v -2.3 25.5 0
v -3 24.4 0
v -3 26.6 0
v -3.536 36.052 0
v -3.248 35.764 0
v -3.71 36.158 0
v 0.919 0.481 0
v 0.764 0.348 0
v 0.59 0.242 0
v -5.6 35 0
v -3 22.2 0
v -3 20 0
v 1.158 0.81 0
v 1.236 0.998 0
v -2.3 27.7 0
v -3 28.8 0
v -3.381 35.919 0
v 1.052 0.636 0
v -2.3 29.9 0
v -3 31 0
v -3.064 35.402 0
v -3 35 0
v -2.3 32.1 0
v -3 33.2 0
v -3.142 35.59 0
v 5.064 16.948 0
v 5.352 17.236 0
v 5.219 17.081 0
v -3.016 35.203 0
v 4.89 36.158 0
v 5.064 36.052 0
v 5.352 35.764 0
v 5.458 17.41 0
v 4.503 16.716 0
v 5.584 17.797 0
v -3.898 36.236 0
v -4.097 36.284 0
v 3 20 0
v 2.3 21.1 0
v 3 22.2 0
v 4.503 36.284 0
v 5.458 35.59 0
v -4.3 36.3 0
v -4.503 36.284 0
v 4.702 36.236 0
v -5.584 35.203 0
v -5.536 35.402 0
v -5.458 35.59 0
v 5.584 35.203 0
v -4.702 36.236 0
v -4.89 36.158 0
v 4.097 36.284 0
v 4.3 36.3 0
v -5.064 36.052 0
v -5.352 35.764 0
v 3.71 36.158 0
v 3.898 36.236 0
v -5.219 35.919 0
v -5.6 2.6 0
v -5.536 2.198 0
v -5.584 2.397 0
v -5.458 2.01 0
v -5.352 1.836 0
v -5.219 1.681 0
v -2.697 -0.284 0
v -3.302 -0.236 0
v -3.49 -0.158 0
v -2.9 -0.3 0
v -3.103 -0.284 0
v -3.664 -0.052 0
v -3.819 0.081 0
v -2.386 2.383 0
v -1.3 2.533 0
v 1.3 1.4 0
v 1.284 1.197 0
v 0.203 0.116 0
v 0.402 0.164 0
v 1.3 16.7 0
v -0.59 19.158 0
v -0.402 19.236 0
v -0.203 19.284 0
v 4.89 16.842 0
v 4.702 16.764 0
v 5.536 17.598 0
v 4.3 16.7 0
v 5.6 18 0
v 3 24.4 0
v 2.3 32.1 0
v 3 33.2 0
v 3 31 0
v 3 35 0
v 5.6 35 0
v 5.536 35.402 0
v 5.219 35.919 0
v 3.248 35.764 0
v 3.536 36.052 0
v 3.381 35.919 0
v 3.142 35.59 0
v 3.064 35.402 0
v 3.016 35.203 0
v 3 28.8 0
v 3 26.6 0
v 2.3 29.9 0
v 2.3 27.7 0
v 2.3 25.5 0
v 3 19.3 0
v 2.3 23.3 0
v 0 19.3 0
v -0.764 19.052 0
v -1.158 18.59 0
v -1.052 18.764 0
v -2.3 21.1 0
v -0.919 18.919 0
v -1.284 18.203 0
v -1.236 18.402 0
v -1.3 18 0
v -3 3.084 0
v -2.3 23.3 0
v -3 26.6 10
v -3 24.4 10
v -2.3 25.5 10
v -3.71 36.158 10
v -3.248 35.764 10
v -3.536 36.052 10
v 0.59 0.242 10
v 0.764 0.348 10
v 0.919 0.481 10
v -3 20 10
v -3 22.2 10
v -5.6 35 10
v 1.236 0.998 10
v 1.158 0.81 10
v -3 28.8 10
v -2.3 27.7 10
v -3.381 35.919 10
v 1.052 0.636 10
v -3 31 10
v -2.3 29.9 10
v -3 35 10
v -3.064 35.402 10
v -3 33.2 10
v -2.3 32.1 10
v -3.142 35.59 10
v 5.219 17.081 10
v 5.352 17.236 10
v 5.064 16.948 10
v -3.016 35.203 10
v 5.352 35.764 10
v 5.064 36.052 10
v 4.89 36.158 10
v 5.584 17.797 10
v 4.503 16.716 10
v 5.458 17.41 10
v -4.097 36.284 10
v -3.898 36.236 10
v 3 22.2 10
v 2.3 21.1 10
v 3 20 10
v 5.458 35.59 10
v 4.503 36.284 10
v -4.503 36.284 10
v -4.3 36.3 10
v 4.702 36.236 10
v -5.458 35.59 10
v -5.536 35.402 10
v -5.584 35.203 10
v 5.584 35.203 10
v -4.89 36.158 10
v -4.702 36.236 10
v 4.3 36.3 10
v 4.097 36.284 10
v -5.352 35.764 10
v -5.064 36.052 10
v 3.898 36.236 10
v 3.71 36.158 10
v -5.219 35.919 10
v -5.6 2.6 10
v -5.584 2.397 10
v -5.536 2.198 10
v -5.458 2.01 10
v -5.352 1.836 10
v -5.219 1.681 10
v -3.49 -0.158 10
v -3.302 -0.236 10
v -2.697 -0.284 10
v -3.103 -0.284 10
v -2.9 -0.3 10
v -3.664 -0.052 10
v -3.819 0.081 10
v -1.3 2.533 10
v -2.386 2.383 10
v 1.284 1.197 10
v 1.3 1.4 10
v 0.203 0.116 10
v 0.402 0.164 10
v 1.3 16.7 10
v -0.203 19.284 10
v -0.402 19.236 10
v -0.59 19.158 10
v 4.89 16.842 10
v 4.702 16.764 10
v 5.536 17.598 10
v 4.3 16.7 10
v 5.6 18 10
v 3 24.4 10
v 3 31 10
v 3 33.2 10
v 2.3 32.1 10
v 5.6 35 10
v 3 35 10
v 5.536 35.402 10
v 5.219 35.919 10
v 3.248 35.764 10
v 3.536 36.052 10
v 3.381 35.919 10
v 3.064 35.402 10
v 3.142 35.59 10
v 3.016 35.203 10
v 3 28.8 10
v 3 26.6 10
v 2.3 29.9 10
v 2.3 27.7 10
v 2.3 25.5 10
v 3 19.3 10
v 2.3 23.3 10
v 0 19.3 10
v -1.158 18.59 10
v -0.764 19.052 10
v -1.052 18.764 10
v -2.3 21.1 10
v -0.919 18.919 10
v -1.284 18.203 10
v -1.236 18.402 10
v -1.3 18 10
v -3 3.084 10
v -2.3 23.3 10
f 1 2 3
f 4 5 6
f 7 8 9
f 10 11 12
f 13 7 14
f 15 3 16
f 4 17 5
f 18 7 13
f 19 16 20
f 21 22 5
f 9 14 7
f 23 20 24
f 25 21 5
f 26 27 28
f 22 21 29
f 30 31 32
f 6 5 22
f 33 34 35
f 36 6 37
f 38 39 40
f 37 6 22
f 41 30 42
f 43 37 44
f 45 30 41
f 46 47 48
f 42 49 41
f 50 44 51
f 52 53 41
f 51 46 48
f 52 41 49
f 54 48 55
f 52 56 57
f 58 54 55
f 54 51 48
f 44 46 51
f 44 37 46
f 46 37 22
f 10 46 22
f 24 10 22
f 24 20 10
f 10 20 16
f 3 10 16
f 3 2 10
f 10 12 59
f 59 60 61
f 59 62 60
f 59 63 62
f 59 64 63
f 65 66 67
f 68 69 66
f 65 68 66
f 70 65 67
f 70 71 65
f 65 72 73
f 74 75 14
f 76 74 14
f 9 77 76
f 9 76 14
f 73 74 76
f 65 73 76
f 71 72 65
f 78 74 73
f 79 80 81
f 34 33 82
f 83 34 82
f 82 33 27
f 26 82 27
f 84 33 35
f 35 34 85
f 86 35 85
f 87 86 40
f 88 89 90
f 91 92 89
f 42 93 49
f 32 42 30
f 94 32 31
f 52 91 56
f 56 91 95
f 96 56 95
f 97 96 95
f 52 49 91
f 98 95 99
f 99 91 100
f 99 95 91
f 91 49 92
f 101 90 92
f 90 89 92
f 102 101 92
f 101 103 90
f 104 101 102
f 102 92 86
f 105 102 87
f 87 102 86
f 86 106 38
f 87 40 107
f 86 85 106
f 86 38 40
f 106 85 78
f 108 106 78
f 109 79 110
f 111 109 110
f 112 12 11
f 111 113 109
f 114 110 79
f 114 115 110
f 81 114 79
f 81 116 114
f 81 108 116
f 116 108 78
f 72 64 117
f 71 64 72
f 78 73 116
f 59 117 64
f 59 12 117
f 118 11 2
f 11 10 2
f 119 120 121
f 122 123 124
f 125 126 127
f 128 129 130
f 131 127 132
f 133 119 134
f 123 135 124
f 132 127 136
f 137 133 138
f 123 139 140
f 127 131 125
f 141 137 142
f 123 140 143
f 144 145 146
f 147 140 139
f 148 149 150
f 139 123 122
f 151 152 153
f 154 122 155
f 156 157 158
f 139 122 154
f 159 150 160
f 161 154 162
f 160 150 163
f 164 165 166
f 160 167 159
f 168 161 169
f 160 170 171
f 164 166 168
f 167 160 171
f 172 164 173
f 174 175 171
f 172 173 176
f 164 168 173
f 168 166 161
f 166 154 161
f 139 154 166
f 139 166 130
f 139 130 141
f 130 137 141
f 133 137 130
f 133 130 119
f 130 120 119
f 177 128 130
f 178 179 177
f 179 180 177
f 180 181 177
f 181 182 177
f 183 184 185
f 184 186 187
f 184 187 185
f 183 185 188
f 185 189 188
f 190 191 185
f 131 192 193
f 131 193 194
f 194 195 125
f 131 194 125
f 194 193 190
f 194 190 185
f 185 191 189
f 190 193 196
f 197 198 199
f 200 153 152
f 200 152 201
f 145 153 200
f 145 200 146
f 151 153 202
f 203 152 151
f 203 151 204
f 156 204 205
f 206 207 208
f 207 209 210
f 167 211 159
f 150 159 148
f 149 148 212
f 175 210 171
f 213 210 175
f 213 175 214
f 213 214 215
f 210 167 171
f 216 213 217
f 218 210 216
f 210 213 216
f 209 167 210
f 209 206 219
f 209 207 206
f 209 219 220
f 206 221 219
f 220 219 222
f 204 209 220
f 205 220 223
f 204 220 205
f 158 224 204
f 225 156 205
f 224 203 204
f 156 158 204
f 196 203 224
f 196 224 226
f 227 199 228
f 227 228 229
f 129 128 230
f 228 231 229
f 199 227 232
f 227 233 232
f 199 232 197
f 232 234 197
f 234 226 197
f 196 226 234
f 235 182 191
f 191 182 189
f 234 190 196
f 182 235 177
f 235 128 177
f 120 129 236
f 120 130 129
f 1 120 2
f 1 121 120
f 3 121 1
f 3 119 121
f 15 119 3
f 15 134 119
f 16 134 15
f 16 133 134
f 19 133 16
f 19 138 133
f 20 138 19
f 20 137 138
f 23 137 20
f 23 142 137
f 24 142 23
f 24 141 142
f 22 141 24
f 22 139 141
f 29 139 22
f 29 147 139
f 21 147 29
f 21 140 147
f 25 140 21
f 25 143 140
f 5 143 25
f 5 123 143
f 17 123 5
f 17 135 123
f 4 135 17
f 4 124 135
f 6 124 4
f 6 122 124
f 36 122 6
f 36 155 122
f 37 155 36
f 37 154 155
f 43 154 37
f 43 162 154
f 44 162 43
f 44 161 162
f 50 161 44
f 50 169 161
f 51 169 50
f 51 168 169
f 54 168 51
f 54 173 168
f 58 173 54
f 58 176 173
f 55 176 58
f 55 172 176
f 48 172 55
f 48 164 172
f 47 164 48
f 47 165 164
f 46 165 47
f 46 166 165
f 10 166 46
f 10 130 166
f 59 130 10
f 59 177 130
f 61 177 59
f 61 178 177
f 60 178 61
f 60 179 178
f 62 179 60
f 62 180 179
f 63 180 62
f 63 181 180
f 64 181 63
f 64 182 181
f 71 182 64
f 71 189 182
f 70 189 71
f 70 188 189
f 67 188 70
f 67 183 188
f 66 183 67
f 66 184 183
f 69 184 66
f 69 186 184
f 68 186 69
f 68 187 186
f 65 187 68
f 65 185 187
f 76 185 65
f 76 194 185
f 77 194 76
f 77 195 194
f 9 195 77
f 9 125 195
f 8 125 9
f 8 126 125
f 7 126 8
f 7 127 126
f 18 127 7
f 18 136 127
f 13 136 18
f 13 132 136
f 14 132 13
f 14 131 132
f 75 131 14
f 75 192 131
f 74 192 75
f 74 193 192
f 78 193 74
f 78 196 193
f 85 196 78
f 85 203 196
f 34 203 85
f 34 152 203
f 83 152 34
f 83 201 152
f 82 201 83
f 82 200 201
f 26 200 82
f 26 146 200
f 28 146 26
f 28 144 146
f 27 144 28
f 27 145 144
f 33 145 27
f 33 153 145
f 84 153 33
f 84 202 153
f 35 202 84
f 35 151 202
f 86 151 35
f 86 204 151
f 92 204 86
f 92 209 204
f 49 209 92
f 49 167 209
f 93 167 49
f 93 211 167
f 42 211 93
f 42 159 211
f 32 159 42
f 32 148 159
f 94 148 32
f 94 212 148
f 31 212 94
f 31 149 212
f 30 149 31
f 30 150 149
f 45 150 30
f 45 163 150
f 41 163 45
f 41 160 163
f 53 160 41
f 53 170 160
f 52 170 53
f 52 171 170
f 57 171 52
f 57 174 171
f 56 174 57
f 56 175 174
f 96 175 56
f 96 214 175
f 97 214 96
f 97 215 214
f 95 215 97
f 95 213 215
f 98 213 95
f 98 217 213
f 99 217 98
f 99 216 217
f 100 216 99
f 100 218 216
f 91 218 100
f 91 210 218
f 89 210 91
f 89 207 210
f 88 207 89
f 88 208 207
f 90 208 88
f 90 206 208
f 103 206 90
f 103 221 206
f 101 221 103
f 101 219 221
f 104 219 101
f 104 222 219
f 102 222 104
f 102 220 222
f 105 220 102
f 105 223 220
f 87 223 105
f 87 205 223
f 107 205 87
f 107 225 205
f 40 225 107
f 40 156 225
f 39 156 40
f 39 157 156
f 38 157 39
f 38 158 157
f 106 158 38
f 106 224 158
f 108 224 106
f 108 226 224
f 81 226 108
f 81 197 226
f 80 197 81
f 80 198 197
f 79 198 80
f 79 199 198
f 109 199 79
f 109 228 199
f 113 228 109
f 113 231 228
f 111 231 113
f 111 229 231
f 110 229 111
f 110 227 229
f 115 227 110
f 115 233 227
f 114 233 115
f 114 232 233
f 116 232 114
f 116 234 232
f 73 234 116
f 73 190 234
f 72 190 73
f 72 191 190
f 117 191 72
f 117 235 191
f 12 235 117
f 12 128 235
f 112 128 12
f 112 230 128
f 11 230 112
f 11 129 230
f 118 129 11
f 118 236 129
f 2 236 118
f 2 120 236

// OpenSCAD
// bagclip_pinch — traced from smallest_bag_clip.stl. A flattened S-fold spring:
// two serrated prongs at the top pinch the bag, joined through a middle bar and a
// bottom U that act as the spring. Squeeze the prongs apart, insert the bag's
// folded top, release — the serrations bite and the fold holds it.
//
// Flat profile extruded along Z (bite depth). Prints flat, support-free; the fold
// flexes in-plane along the layers (low strain per fold -> survives in PLA).

/* [Size] */
clip_h  = 35;     // height (Y)
gap_x   = 4.3;    // prong centerline offset from middle (sets overall width)
rib     = 2.6;    // ribbon thickness
bite    = 10;     // Z depth (along the bag edge)
mid_top = 18;     // height where the middle bar joins across to the right prong

/* [Teeth] */
tooth_d   = 0.7;  // how far teeth bite inward
tooth_p   = 2.2;  // tooth pitch
tooth_lo  = 20;   // teeth start height
tooth_hi  = 33;   // teeth end height

$fn = 40;

// folded S centerline (left prong down, bottom U, middle bar up, bridge, right prong up)
pts = [
  [-gap_x, clip_h],   [-gap_x, 2.6],   [-gap_x+1.4, 1.0],
  [0, 1.4],           [0, mid_top],    [gap_x, mid_top],   [gap_x, clip_h],
];

module ribbon(p) {
  for (i = [0 : len(p)-2])
    hull() { translate(p[i]) circle(d=rib); translate(p[i+1]) circle(d=rib); }
}

// sawtooth on a vertical inner face at x=fx, biting in direction `dir`
module teeth(fx, dir) {
  for (y = [tooth_lo : tooth_p : tooth_hi])
    polygon([[fx, y], [fx + dir*tooth_d, y + tooth_p/2], [fx, y + tooth_p]]);
}

module clip2d() {
  union() {
    ribbon(pts);
    teeth(-gap_x + rib/2, +1);   // left prong inner face
    teeth( gap_x - rib/2, -1);   // right prong inner face
  }
}

linear_extrude(bite) clip2d();
